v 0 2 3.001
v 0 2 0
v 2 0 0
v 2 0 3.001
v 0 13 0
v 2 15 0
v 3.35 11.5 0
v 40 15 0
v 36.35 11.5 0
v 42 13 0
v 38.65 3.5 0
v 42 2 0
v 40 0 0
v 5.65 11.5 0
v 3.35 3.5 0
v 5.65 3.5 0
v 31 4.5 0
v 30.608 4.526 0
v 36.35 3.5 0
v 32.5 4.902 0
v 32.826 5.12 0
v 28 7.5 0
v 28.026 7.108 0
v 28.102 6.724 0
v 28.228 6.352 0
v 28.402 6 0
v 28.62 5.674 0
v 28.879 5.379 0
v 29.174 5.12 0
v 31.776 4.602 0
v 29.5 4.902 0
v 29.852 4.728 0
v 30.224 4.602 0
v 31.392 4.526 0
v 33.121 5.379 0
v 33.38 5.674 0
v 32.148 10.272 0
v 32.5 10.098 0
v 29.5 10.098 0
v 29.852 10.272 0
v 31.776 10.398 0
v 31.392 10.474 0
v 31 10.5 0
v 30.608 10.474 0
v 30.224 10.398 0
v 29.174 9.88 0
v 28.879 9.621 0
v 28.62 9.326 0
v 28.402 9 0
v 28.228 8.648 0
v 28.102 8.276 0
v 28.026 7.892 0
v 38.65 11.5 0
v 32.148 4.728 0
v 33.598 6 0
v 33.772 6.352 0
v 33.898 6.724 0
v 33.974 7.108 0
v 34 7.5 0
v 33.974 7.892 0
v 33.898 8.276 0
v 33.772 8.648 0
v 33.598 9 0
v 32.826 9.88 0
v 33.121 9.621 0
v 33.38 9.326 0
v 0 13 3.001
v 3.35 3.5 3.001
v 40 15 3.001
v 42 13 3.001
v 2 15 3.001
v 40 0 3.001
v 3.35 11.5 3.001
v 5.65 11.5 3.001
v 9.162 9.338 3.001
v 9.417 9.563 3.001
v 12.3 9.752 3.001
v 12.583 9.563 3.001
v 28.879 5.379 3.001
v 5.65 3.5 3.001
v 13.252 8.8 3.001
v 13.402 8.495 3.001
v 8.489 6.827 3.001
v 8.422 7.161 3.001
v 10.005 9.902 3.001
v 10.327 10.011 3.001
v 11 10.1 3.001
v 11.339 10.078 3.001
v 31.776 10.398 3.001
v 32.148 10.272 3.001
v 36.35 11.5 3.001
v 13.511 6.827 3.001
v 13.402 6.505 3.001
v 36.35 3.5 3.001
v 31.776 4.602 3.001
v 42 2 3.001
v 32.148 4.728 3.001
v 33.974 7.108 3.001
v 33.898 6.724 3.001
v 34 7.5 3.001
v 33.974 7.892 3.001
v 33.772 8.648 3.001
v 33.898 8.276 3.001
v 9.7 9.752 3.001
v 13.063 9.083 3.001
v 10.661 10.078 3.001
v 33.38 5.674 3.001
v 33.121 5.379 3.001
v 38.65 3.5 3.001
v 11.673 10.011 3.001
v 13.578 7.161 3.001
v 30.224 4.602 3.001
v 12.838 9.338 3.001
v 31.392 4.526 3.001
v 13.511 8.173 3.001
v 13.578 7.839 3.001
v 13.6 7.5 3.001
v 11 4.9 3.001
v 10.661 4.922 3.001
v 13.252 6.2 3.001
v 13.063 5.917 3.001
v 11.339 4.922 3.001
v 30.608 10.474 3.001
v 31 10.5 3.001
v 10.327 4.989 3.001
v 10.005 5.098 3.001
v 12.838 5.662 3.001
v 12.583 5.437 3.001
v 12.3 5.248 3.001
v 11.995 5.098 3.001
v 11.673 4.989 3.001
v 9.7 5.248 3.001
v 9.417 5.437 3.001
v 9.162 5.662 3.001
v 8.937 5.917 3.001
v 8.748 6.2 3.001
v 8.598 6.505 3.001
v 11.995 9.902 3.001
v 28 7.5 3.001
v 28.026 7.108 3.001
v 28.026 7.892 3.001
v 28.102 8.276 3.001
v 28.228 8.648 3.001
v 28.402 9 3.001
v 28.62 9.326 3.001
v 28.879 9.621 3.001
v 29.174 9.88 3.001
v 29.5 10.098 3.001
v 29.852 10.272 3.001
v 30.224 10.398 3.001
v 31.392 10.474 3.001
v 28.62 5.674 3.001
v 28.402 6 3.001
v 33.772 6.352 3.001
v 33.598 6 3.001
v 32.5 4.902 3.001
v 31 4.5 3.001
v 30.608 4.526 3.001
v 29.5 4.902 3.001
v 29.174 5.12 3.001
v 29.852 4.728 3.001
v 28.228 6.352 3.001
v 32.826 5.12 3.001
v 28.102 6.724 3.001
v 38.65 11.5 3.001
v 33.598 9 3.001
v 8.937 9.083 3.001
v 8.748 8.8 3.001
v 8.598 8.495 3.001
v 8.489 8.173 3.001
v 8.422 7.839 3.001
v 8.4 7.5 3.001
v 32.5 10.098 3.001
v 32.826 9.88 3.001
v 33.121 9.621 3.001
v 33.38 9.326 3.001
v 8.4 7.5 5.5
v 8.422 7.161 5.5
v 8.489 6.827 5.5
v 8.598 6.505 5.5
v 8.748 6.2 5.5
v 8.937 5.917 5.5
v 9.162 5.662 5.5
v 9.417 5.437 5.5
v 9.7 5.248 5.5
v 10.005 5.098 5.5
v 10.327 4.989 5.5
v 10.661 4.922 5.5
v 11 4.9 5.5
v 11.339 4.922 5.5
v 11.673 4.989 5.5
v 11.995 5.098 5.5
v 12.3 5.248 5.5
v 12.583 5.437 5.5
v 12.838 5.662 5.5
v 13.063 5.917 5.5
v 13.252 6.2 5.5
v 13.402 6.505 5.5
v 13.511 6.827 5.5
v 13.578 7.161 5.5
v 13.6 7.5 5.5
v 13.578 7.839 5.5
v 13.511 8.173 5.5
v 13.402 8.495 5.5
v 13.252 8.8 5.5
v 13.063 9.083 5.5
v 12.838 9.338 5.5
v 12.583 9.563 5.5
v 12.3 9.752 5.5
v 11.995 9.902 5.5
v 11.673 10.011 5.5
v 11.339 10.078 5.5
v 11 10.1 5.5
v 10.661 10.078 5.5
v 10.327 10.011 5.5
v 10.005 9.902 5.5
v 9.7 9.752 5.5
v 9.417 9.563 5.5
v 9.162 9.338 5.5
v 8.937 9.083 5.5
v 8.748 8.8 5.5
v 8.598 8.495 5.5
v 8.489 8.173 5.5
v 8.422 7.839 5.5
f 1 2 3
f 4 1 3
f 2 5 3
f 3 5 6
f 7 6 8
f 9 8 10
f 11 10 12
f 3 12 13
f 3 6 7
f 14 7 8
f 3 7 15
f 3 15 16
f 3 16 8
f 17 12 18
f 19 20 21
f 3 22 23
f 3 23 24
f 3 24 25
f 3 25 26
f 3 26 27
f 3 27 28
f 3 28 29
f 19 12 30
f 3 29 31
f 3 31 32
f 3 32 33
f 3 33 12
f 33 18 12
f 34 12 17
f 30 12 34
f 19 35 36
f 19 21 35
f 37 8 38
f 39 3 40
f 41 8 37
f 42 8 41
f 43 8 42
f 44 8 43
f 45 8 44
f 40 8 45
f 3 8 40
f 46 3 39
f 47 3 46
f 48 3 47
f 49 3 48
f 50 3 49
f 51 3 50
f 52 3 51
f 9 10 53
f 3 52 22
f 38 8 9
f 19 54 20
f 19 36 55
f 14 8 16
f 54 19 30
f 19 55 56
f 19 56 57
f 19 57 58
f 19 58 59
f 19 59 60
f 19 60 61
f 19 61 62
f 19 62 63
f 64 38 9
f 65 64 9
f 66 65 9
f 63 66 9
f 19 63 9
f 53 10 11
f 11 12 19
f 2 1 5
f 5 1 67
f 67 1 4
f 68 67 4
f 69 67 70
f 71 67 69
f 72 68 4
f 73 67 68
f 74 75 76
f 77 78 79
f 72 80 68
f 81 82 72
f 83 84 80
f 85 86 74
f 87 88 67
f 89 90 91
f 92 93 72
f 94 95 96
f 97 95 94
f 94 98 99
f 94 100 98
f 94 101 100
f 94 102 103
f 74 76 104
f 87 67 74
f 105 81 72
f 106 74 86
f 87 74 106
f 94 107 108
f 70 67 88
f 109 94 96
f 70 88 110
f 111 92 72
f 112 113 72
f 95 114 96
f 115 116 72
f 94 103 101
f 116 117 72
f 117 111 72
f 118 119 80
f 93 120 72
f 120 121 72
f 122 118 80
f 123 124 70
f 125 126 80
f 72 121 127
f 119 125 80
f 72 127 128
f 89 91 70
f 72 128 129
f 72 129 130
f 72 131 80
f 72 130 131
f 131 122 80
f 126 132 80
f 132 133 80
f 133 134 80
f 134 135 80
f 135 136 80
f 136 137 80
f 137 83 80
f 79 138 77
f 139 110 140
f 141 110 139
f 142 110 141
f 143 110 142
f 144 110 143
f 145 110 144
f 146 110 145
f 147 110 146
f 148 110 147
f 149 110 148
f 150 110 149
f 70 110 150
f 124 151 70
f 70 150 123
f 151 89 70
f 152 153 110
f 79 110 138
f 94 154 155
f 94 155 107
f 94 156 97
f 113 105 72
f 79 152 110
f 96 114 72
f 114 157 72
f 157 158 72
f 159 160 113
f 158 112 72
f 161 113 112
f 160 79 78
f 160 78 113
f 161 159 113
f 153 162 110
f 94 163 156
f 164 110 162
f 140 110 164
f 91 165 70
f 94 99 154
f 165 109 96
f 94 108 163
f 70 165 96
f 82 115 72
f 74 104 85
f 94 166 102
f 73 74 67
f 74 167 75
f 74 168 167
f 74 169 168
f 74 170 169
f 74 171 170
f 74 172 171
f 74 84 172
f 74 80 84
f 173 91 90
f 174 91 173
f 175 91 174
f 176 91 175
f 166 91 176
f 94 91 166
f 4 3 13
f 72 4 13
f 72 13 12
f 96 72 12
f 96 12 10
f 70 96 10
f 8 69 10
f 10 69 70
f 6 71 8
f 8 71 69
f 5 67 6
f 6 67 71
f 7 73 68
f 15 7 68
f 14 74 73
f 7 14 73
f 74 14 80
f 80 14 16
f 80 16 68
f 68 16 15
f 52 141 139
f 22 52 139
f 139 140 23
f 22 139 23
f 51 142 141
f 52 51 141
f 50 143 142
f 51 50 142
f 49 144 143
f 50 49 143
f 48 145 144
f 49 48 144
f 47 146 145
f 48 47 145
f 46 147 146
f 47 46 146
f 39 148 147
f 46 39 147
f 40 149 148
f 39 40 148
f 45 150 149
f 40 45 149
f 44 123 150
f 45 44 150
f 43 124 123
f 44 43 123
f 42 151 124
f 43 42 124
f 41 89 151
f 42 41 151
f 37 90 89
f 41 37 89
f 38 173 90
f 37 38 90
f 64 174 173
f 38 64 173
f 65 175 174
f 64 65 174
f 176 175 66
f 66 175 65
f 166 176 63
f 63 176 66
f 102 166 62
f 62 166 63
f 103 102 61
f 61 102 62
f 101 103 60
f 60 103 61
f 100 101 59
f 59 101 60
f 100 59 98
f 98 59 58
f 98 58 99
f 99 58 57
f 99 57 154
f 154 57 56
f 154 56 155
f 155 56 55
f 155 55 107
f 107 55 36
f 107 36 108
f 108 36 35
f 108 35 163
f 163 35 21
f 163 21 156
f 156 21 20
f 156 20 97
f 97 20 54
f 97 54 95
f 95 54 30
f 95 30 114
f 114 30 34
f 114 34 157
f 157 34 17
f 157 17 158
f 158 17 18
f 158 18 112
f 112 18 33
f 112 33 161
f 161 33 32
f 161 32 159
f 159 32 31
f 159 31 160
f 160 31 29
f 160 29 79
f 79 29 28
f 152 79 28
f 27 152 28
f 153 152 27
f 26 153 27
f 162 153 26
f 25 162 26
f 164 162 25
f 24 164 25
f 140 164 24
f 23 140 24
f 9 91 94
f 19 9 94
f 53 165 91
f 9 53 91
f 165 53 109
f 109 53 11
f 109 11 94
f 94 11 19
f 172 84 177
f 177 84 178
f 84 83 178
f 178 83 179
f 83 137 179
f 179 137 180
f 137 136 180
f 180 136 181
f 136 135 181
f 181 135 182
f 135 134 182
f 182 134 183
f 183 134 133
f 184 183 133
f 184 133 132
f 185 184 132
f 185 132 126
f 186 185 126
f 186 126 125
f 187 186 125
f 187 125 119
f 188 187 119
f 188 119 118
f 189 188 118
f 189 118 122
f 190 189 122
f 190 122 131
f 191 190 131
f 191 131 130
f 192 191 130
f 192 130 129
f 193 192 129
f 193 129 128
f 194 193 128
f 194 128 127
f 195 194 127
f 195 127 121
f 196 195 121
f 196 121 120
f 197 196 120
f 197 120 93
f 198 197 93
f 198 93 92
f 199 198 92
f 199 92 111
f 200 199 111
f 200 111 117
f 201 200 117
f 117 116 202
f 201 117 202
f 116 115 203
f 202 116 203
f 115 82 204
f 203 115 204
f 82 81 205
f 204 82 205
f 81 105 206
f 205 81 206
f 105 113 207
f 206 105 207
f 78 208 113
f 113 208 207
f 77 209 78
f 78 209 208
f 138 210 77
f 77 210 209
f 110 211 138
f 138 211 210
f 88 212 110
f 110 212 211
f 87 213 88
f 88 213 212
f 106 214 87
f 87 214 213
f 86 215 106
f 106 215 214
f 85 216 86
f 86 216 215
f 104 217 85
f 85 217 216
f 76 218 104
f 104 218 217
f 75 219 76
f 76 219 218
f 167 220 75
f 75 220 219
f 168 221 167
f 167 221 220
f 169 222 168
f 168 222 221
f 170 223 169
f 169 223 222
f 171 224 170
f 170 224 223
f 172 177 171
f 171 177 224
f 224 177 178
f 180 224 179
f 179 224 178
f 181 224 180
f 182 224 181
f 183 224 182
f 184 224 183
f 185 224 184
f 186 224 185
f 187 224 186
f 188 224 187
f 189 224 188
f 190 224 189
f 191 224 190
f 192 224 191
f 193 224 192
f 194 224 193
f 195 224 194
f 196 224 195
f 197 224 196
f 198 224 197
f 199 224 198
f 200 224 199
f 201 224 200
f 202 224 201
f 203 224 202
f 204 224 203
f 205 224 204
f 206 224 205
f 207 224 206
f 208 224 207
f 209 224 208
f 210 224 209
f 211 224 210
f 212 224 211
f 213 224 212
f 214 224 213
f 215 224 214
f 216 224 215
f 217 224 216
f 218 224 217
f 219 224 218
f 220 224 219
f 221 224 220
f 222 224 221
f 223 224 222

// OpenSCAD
// file: scad/tapercube.scad
module tapercube(width=10, height=10, depth=10, taper=3.0) {
  plane = 0.001;
  hull() {
    translate([taper/2,taper/2,0])
      cube([width-taper, height-taper, plane]);
    translate([0,0,taper/2]) {
      translate([0,taper/2])
        cube([width, height-taper, plane]);
      translate([taper/2,0])
        cube([width-taper, height, plane]);
    }

    translate([taper/2,taper/2,depth-plane])
      cube([width-taper, height-taper, plane]);
    translate([0,0,depth-taper/2]) {
      translate([0,taper/2])
        cube([width, height-taper, plane]);
      translate([taper/2,0])
        cube([width-taper, height, plane]);
    }
  }
}

module cornerless_cube(width=10, height=10, depth=10, taper=3.0) {
  plane = 0.001;
  hull() {
    translate([0,taper/2])
      cube([width, height-taper, plane]);
    translate([taper/2,0])
      cube([width-taper, height, plane]);

    translate([0,0,depth]) {
      translate([0,taper/2])
        cube([width, height-taper, plane]);
      translate([taper/2,0])
        cube([width-taper, height, plane]);
    }
  }
}
// main file
include <scad/tapercube.scad>;

long=30;

hole_r = 3.0;
peg_r = 2.6;

neoprene_width = 8.0;
neoprene_thick = 2.3;
neoprene_inset = 4.5;

$fn=48;

module washer(width=42, height=15, depth=3.0) {
  difference() {
    // cube([width, height, depth]);
    union() {
      cornerless_cube(width, height, depth, 4.0);
      translate([width/2-10, height/2, depth])
        cylinder(r=peg_r, h=2.5);    
    }

    translate([width/2+10, height/2, 0])
      cylinder(r=hole_r, h=long, center=true);

    translate([neoprene_inset - neoprene_thick/2, height/2 - neoprene_width/2, -long/2])
      cube([neoprene_thick, neoprene_width, long]);

    translate([width - neoprene_inset - neoprene_thick/2, height/2 - neoprene_width/2, -long/2])
      cube([neoprene_thick, neoprene_width, long]);
  }
}

washer();
